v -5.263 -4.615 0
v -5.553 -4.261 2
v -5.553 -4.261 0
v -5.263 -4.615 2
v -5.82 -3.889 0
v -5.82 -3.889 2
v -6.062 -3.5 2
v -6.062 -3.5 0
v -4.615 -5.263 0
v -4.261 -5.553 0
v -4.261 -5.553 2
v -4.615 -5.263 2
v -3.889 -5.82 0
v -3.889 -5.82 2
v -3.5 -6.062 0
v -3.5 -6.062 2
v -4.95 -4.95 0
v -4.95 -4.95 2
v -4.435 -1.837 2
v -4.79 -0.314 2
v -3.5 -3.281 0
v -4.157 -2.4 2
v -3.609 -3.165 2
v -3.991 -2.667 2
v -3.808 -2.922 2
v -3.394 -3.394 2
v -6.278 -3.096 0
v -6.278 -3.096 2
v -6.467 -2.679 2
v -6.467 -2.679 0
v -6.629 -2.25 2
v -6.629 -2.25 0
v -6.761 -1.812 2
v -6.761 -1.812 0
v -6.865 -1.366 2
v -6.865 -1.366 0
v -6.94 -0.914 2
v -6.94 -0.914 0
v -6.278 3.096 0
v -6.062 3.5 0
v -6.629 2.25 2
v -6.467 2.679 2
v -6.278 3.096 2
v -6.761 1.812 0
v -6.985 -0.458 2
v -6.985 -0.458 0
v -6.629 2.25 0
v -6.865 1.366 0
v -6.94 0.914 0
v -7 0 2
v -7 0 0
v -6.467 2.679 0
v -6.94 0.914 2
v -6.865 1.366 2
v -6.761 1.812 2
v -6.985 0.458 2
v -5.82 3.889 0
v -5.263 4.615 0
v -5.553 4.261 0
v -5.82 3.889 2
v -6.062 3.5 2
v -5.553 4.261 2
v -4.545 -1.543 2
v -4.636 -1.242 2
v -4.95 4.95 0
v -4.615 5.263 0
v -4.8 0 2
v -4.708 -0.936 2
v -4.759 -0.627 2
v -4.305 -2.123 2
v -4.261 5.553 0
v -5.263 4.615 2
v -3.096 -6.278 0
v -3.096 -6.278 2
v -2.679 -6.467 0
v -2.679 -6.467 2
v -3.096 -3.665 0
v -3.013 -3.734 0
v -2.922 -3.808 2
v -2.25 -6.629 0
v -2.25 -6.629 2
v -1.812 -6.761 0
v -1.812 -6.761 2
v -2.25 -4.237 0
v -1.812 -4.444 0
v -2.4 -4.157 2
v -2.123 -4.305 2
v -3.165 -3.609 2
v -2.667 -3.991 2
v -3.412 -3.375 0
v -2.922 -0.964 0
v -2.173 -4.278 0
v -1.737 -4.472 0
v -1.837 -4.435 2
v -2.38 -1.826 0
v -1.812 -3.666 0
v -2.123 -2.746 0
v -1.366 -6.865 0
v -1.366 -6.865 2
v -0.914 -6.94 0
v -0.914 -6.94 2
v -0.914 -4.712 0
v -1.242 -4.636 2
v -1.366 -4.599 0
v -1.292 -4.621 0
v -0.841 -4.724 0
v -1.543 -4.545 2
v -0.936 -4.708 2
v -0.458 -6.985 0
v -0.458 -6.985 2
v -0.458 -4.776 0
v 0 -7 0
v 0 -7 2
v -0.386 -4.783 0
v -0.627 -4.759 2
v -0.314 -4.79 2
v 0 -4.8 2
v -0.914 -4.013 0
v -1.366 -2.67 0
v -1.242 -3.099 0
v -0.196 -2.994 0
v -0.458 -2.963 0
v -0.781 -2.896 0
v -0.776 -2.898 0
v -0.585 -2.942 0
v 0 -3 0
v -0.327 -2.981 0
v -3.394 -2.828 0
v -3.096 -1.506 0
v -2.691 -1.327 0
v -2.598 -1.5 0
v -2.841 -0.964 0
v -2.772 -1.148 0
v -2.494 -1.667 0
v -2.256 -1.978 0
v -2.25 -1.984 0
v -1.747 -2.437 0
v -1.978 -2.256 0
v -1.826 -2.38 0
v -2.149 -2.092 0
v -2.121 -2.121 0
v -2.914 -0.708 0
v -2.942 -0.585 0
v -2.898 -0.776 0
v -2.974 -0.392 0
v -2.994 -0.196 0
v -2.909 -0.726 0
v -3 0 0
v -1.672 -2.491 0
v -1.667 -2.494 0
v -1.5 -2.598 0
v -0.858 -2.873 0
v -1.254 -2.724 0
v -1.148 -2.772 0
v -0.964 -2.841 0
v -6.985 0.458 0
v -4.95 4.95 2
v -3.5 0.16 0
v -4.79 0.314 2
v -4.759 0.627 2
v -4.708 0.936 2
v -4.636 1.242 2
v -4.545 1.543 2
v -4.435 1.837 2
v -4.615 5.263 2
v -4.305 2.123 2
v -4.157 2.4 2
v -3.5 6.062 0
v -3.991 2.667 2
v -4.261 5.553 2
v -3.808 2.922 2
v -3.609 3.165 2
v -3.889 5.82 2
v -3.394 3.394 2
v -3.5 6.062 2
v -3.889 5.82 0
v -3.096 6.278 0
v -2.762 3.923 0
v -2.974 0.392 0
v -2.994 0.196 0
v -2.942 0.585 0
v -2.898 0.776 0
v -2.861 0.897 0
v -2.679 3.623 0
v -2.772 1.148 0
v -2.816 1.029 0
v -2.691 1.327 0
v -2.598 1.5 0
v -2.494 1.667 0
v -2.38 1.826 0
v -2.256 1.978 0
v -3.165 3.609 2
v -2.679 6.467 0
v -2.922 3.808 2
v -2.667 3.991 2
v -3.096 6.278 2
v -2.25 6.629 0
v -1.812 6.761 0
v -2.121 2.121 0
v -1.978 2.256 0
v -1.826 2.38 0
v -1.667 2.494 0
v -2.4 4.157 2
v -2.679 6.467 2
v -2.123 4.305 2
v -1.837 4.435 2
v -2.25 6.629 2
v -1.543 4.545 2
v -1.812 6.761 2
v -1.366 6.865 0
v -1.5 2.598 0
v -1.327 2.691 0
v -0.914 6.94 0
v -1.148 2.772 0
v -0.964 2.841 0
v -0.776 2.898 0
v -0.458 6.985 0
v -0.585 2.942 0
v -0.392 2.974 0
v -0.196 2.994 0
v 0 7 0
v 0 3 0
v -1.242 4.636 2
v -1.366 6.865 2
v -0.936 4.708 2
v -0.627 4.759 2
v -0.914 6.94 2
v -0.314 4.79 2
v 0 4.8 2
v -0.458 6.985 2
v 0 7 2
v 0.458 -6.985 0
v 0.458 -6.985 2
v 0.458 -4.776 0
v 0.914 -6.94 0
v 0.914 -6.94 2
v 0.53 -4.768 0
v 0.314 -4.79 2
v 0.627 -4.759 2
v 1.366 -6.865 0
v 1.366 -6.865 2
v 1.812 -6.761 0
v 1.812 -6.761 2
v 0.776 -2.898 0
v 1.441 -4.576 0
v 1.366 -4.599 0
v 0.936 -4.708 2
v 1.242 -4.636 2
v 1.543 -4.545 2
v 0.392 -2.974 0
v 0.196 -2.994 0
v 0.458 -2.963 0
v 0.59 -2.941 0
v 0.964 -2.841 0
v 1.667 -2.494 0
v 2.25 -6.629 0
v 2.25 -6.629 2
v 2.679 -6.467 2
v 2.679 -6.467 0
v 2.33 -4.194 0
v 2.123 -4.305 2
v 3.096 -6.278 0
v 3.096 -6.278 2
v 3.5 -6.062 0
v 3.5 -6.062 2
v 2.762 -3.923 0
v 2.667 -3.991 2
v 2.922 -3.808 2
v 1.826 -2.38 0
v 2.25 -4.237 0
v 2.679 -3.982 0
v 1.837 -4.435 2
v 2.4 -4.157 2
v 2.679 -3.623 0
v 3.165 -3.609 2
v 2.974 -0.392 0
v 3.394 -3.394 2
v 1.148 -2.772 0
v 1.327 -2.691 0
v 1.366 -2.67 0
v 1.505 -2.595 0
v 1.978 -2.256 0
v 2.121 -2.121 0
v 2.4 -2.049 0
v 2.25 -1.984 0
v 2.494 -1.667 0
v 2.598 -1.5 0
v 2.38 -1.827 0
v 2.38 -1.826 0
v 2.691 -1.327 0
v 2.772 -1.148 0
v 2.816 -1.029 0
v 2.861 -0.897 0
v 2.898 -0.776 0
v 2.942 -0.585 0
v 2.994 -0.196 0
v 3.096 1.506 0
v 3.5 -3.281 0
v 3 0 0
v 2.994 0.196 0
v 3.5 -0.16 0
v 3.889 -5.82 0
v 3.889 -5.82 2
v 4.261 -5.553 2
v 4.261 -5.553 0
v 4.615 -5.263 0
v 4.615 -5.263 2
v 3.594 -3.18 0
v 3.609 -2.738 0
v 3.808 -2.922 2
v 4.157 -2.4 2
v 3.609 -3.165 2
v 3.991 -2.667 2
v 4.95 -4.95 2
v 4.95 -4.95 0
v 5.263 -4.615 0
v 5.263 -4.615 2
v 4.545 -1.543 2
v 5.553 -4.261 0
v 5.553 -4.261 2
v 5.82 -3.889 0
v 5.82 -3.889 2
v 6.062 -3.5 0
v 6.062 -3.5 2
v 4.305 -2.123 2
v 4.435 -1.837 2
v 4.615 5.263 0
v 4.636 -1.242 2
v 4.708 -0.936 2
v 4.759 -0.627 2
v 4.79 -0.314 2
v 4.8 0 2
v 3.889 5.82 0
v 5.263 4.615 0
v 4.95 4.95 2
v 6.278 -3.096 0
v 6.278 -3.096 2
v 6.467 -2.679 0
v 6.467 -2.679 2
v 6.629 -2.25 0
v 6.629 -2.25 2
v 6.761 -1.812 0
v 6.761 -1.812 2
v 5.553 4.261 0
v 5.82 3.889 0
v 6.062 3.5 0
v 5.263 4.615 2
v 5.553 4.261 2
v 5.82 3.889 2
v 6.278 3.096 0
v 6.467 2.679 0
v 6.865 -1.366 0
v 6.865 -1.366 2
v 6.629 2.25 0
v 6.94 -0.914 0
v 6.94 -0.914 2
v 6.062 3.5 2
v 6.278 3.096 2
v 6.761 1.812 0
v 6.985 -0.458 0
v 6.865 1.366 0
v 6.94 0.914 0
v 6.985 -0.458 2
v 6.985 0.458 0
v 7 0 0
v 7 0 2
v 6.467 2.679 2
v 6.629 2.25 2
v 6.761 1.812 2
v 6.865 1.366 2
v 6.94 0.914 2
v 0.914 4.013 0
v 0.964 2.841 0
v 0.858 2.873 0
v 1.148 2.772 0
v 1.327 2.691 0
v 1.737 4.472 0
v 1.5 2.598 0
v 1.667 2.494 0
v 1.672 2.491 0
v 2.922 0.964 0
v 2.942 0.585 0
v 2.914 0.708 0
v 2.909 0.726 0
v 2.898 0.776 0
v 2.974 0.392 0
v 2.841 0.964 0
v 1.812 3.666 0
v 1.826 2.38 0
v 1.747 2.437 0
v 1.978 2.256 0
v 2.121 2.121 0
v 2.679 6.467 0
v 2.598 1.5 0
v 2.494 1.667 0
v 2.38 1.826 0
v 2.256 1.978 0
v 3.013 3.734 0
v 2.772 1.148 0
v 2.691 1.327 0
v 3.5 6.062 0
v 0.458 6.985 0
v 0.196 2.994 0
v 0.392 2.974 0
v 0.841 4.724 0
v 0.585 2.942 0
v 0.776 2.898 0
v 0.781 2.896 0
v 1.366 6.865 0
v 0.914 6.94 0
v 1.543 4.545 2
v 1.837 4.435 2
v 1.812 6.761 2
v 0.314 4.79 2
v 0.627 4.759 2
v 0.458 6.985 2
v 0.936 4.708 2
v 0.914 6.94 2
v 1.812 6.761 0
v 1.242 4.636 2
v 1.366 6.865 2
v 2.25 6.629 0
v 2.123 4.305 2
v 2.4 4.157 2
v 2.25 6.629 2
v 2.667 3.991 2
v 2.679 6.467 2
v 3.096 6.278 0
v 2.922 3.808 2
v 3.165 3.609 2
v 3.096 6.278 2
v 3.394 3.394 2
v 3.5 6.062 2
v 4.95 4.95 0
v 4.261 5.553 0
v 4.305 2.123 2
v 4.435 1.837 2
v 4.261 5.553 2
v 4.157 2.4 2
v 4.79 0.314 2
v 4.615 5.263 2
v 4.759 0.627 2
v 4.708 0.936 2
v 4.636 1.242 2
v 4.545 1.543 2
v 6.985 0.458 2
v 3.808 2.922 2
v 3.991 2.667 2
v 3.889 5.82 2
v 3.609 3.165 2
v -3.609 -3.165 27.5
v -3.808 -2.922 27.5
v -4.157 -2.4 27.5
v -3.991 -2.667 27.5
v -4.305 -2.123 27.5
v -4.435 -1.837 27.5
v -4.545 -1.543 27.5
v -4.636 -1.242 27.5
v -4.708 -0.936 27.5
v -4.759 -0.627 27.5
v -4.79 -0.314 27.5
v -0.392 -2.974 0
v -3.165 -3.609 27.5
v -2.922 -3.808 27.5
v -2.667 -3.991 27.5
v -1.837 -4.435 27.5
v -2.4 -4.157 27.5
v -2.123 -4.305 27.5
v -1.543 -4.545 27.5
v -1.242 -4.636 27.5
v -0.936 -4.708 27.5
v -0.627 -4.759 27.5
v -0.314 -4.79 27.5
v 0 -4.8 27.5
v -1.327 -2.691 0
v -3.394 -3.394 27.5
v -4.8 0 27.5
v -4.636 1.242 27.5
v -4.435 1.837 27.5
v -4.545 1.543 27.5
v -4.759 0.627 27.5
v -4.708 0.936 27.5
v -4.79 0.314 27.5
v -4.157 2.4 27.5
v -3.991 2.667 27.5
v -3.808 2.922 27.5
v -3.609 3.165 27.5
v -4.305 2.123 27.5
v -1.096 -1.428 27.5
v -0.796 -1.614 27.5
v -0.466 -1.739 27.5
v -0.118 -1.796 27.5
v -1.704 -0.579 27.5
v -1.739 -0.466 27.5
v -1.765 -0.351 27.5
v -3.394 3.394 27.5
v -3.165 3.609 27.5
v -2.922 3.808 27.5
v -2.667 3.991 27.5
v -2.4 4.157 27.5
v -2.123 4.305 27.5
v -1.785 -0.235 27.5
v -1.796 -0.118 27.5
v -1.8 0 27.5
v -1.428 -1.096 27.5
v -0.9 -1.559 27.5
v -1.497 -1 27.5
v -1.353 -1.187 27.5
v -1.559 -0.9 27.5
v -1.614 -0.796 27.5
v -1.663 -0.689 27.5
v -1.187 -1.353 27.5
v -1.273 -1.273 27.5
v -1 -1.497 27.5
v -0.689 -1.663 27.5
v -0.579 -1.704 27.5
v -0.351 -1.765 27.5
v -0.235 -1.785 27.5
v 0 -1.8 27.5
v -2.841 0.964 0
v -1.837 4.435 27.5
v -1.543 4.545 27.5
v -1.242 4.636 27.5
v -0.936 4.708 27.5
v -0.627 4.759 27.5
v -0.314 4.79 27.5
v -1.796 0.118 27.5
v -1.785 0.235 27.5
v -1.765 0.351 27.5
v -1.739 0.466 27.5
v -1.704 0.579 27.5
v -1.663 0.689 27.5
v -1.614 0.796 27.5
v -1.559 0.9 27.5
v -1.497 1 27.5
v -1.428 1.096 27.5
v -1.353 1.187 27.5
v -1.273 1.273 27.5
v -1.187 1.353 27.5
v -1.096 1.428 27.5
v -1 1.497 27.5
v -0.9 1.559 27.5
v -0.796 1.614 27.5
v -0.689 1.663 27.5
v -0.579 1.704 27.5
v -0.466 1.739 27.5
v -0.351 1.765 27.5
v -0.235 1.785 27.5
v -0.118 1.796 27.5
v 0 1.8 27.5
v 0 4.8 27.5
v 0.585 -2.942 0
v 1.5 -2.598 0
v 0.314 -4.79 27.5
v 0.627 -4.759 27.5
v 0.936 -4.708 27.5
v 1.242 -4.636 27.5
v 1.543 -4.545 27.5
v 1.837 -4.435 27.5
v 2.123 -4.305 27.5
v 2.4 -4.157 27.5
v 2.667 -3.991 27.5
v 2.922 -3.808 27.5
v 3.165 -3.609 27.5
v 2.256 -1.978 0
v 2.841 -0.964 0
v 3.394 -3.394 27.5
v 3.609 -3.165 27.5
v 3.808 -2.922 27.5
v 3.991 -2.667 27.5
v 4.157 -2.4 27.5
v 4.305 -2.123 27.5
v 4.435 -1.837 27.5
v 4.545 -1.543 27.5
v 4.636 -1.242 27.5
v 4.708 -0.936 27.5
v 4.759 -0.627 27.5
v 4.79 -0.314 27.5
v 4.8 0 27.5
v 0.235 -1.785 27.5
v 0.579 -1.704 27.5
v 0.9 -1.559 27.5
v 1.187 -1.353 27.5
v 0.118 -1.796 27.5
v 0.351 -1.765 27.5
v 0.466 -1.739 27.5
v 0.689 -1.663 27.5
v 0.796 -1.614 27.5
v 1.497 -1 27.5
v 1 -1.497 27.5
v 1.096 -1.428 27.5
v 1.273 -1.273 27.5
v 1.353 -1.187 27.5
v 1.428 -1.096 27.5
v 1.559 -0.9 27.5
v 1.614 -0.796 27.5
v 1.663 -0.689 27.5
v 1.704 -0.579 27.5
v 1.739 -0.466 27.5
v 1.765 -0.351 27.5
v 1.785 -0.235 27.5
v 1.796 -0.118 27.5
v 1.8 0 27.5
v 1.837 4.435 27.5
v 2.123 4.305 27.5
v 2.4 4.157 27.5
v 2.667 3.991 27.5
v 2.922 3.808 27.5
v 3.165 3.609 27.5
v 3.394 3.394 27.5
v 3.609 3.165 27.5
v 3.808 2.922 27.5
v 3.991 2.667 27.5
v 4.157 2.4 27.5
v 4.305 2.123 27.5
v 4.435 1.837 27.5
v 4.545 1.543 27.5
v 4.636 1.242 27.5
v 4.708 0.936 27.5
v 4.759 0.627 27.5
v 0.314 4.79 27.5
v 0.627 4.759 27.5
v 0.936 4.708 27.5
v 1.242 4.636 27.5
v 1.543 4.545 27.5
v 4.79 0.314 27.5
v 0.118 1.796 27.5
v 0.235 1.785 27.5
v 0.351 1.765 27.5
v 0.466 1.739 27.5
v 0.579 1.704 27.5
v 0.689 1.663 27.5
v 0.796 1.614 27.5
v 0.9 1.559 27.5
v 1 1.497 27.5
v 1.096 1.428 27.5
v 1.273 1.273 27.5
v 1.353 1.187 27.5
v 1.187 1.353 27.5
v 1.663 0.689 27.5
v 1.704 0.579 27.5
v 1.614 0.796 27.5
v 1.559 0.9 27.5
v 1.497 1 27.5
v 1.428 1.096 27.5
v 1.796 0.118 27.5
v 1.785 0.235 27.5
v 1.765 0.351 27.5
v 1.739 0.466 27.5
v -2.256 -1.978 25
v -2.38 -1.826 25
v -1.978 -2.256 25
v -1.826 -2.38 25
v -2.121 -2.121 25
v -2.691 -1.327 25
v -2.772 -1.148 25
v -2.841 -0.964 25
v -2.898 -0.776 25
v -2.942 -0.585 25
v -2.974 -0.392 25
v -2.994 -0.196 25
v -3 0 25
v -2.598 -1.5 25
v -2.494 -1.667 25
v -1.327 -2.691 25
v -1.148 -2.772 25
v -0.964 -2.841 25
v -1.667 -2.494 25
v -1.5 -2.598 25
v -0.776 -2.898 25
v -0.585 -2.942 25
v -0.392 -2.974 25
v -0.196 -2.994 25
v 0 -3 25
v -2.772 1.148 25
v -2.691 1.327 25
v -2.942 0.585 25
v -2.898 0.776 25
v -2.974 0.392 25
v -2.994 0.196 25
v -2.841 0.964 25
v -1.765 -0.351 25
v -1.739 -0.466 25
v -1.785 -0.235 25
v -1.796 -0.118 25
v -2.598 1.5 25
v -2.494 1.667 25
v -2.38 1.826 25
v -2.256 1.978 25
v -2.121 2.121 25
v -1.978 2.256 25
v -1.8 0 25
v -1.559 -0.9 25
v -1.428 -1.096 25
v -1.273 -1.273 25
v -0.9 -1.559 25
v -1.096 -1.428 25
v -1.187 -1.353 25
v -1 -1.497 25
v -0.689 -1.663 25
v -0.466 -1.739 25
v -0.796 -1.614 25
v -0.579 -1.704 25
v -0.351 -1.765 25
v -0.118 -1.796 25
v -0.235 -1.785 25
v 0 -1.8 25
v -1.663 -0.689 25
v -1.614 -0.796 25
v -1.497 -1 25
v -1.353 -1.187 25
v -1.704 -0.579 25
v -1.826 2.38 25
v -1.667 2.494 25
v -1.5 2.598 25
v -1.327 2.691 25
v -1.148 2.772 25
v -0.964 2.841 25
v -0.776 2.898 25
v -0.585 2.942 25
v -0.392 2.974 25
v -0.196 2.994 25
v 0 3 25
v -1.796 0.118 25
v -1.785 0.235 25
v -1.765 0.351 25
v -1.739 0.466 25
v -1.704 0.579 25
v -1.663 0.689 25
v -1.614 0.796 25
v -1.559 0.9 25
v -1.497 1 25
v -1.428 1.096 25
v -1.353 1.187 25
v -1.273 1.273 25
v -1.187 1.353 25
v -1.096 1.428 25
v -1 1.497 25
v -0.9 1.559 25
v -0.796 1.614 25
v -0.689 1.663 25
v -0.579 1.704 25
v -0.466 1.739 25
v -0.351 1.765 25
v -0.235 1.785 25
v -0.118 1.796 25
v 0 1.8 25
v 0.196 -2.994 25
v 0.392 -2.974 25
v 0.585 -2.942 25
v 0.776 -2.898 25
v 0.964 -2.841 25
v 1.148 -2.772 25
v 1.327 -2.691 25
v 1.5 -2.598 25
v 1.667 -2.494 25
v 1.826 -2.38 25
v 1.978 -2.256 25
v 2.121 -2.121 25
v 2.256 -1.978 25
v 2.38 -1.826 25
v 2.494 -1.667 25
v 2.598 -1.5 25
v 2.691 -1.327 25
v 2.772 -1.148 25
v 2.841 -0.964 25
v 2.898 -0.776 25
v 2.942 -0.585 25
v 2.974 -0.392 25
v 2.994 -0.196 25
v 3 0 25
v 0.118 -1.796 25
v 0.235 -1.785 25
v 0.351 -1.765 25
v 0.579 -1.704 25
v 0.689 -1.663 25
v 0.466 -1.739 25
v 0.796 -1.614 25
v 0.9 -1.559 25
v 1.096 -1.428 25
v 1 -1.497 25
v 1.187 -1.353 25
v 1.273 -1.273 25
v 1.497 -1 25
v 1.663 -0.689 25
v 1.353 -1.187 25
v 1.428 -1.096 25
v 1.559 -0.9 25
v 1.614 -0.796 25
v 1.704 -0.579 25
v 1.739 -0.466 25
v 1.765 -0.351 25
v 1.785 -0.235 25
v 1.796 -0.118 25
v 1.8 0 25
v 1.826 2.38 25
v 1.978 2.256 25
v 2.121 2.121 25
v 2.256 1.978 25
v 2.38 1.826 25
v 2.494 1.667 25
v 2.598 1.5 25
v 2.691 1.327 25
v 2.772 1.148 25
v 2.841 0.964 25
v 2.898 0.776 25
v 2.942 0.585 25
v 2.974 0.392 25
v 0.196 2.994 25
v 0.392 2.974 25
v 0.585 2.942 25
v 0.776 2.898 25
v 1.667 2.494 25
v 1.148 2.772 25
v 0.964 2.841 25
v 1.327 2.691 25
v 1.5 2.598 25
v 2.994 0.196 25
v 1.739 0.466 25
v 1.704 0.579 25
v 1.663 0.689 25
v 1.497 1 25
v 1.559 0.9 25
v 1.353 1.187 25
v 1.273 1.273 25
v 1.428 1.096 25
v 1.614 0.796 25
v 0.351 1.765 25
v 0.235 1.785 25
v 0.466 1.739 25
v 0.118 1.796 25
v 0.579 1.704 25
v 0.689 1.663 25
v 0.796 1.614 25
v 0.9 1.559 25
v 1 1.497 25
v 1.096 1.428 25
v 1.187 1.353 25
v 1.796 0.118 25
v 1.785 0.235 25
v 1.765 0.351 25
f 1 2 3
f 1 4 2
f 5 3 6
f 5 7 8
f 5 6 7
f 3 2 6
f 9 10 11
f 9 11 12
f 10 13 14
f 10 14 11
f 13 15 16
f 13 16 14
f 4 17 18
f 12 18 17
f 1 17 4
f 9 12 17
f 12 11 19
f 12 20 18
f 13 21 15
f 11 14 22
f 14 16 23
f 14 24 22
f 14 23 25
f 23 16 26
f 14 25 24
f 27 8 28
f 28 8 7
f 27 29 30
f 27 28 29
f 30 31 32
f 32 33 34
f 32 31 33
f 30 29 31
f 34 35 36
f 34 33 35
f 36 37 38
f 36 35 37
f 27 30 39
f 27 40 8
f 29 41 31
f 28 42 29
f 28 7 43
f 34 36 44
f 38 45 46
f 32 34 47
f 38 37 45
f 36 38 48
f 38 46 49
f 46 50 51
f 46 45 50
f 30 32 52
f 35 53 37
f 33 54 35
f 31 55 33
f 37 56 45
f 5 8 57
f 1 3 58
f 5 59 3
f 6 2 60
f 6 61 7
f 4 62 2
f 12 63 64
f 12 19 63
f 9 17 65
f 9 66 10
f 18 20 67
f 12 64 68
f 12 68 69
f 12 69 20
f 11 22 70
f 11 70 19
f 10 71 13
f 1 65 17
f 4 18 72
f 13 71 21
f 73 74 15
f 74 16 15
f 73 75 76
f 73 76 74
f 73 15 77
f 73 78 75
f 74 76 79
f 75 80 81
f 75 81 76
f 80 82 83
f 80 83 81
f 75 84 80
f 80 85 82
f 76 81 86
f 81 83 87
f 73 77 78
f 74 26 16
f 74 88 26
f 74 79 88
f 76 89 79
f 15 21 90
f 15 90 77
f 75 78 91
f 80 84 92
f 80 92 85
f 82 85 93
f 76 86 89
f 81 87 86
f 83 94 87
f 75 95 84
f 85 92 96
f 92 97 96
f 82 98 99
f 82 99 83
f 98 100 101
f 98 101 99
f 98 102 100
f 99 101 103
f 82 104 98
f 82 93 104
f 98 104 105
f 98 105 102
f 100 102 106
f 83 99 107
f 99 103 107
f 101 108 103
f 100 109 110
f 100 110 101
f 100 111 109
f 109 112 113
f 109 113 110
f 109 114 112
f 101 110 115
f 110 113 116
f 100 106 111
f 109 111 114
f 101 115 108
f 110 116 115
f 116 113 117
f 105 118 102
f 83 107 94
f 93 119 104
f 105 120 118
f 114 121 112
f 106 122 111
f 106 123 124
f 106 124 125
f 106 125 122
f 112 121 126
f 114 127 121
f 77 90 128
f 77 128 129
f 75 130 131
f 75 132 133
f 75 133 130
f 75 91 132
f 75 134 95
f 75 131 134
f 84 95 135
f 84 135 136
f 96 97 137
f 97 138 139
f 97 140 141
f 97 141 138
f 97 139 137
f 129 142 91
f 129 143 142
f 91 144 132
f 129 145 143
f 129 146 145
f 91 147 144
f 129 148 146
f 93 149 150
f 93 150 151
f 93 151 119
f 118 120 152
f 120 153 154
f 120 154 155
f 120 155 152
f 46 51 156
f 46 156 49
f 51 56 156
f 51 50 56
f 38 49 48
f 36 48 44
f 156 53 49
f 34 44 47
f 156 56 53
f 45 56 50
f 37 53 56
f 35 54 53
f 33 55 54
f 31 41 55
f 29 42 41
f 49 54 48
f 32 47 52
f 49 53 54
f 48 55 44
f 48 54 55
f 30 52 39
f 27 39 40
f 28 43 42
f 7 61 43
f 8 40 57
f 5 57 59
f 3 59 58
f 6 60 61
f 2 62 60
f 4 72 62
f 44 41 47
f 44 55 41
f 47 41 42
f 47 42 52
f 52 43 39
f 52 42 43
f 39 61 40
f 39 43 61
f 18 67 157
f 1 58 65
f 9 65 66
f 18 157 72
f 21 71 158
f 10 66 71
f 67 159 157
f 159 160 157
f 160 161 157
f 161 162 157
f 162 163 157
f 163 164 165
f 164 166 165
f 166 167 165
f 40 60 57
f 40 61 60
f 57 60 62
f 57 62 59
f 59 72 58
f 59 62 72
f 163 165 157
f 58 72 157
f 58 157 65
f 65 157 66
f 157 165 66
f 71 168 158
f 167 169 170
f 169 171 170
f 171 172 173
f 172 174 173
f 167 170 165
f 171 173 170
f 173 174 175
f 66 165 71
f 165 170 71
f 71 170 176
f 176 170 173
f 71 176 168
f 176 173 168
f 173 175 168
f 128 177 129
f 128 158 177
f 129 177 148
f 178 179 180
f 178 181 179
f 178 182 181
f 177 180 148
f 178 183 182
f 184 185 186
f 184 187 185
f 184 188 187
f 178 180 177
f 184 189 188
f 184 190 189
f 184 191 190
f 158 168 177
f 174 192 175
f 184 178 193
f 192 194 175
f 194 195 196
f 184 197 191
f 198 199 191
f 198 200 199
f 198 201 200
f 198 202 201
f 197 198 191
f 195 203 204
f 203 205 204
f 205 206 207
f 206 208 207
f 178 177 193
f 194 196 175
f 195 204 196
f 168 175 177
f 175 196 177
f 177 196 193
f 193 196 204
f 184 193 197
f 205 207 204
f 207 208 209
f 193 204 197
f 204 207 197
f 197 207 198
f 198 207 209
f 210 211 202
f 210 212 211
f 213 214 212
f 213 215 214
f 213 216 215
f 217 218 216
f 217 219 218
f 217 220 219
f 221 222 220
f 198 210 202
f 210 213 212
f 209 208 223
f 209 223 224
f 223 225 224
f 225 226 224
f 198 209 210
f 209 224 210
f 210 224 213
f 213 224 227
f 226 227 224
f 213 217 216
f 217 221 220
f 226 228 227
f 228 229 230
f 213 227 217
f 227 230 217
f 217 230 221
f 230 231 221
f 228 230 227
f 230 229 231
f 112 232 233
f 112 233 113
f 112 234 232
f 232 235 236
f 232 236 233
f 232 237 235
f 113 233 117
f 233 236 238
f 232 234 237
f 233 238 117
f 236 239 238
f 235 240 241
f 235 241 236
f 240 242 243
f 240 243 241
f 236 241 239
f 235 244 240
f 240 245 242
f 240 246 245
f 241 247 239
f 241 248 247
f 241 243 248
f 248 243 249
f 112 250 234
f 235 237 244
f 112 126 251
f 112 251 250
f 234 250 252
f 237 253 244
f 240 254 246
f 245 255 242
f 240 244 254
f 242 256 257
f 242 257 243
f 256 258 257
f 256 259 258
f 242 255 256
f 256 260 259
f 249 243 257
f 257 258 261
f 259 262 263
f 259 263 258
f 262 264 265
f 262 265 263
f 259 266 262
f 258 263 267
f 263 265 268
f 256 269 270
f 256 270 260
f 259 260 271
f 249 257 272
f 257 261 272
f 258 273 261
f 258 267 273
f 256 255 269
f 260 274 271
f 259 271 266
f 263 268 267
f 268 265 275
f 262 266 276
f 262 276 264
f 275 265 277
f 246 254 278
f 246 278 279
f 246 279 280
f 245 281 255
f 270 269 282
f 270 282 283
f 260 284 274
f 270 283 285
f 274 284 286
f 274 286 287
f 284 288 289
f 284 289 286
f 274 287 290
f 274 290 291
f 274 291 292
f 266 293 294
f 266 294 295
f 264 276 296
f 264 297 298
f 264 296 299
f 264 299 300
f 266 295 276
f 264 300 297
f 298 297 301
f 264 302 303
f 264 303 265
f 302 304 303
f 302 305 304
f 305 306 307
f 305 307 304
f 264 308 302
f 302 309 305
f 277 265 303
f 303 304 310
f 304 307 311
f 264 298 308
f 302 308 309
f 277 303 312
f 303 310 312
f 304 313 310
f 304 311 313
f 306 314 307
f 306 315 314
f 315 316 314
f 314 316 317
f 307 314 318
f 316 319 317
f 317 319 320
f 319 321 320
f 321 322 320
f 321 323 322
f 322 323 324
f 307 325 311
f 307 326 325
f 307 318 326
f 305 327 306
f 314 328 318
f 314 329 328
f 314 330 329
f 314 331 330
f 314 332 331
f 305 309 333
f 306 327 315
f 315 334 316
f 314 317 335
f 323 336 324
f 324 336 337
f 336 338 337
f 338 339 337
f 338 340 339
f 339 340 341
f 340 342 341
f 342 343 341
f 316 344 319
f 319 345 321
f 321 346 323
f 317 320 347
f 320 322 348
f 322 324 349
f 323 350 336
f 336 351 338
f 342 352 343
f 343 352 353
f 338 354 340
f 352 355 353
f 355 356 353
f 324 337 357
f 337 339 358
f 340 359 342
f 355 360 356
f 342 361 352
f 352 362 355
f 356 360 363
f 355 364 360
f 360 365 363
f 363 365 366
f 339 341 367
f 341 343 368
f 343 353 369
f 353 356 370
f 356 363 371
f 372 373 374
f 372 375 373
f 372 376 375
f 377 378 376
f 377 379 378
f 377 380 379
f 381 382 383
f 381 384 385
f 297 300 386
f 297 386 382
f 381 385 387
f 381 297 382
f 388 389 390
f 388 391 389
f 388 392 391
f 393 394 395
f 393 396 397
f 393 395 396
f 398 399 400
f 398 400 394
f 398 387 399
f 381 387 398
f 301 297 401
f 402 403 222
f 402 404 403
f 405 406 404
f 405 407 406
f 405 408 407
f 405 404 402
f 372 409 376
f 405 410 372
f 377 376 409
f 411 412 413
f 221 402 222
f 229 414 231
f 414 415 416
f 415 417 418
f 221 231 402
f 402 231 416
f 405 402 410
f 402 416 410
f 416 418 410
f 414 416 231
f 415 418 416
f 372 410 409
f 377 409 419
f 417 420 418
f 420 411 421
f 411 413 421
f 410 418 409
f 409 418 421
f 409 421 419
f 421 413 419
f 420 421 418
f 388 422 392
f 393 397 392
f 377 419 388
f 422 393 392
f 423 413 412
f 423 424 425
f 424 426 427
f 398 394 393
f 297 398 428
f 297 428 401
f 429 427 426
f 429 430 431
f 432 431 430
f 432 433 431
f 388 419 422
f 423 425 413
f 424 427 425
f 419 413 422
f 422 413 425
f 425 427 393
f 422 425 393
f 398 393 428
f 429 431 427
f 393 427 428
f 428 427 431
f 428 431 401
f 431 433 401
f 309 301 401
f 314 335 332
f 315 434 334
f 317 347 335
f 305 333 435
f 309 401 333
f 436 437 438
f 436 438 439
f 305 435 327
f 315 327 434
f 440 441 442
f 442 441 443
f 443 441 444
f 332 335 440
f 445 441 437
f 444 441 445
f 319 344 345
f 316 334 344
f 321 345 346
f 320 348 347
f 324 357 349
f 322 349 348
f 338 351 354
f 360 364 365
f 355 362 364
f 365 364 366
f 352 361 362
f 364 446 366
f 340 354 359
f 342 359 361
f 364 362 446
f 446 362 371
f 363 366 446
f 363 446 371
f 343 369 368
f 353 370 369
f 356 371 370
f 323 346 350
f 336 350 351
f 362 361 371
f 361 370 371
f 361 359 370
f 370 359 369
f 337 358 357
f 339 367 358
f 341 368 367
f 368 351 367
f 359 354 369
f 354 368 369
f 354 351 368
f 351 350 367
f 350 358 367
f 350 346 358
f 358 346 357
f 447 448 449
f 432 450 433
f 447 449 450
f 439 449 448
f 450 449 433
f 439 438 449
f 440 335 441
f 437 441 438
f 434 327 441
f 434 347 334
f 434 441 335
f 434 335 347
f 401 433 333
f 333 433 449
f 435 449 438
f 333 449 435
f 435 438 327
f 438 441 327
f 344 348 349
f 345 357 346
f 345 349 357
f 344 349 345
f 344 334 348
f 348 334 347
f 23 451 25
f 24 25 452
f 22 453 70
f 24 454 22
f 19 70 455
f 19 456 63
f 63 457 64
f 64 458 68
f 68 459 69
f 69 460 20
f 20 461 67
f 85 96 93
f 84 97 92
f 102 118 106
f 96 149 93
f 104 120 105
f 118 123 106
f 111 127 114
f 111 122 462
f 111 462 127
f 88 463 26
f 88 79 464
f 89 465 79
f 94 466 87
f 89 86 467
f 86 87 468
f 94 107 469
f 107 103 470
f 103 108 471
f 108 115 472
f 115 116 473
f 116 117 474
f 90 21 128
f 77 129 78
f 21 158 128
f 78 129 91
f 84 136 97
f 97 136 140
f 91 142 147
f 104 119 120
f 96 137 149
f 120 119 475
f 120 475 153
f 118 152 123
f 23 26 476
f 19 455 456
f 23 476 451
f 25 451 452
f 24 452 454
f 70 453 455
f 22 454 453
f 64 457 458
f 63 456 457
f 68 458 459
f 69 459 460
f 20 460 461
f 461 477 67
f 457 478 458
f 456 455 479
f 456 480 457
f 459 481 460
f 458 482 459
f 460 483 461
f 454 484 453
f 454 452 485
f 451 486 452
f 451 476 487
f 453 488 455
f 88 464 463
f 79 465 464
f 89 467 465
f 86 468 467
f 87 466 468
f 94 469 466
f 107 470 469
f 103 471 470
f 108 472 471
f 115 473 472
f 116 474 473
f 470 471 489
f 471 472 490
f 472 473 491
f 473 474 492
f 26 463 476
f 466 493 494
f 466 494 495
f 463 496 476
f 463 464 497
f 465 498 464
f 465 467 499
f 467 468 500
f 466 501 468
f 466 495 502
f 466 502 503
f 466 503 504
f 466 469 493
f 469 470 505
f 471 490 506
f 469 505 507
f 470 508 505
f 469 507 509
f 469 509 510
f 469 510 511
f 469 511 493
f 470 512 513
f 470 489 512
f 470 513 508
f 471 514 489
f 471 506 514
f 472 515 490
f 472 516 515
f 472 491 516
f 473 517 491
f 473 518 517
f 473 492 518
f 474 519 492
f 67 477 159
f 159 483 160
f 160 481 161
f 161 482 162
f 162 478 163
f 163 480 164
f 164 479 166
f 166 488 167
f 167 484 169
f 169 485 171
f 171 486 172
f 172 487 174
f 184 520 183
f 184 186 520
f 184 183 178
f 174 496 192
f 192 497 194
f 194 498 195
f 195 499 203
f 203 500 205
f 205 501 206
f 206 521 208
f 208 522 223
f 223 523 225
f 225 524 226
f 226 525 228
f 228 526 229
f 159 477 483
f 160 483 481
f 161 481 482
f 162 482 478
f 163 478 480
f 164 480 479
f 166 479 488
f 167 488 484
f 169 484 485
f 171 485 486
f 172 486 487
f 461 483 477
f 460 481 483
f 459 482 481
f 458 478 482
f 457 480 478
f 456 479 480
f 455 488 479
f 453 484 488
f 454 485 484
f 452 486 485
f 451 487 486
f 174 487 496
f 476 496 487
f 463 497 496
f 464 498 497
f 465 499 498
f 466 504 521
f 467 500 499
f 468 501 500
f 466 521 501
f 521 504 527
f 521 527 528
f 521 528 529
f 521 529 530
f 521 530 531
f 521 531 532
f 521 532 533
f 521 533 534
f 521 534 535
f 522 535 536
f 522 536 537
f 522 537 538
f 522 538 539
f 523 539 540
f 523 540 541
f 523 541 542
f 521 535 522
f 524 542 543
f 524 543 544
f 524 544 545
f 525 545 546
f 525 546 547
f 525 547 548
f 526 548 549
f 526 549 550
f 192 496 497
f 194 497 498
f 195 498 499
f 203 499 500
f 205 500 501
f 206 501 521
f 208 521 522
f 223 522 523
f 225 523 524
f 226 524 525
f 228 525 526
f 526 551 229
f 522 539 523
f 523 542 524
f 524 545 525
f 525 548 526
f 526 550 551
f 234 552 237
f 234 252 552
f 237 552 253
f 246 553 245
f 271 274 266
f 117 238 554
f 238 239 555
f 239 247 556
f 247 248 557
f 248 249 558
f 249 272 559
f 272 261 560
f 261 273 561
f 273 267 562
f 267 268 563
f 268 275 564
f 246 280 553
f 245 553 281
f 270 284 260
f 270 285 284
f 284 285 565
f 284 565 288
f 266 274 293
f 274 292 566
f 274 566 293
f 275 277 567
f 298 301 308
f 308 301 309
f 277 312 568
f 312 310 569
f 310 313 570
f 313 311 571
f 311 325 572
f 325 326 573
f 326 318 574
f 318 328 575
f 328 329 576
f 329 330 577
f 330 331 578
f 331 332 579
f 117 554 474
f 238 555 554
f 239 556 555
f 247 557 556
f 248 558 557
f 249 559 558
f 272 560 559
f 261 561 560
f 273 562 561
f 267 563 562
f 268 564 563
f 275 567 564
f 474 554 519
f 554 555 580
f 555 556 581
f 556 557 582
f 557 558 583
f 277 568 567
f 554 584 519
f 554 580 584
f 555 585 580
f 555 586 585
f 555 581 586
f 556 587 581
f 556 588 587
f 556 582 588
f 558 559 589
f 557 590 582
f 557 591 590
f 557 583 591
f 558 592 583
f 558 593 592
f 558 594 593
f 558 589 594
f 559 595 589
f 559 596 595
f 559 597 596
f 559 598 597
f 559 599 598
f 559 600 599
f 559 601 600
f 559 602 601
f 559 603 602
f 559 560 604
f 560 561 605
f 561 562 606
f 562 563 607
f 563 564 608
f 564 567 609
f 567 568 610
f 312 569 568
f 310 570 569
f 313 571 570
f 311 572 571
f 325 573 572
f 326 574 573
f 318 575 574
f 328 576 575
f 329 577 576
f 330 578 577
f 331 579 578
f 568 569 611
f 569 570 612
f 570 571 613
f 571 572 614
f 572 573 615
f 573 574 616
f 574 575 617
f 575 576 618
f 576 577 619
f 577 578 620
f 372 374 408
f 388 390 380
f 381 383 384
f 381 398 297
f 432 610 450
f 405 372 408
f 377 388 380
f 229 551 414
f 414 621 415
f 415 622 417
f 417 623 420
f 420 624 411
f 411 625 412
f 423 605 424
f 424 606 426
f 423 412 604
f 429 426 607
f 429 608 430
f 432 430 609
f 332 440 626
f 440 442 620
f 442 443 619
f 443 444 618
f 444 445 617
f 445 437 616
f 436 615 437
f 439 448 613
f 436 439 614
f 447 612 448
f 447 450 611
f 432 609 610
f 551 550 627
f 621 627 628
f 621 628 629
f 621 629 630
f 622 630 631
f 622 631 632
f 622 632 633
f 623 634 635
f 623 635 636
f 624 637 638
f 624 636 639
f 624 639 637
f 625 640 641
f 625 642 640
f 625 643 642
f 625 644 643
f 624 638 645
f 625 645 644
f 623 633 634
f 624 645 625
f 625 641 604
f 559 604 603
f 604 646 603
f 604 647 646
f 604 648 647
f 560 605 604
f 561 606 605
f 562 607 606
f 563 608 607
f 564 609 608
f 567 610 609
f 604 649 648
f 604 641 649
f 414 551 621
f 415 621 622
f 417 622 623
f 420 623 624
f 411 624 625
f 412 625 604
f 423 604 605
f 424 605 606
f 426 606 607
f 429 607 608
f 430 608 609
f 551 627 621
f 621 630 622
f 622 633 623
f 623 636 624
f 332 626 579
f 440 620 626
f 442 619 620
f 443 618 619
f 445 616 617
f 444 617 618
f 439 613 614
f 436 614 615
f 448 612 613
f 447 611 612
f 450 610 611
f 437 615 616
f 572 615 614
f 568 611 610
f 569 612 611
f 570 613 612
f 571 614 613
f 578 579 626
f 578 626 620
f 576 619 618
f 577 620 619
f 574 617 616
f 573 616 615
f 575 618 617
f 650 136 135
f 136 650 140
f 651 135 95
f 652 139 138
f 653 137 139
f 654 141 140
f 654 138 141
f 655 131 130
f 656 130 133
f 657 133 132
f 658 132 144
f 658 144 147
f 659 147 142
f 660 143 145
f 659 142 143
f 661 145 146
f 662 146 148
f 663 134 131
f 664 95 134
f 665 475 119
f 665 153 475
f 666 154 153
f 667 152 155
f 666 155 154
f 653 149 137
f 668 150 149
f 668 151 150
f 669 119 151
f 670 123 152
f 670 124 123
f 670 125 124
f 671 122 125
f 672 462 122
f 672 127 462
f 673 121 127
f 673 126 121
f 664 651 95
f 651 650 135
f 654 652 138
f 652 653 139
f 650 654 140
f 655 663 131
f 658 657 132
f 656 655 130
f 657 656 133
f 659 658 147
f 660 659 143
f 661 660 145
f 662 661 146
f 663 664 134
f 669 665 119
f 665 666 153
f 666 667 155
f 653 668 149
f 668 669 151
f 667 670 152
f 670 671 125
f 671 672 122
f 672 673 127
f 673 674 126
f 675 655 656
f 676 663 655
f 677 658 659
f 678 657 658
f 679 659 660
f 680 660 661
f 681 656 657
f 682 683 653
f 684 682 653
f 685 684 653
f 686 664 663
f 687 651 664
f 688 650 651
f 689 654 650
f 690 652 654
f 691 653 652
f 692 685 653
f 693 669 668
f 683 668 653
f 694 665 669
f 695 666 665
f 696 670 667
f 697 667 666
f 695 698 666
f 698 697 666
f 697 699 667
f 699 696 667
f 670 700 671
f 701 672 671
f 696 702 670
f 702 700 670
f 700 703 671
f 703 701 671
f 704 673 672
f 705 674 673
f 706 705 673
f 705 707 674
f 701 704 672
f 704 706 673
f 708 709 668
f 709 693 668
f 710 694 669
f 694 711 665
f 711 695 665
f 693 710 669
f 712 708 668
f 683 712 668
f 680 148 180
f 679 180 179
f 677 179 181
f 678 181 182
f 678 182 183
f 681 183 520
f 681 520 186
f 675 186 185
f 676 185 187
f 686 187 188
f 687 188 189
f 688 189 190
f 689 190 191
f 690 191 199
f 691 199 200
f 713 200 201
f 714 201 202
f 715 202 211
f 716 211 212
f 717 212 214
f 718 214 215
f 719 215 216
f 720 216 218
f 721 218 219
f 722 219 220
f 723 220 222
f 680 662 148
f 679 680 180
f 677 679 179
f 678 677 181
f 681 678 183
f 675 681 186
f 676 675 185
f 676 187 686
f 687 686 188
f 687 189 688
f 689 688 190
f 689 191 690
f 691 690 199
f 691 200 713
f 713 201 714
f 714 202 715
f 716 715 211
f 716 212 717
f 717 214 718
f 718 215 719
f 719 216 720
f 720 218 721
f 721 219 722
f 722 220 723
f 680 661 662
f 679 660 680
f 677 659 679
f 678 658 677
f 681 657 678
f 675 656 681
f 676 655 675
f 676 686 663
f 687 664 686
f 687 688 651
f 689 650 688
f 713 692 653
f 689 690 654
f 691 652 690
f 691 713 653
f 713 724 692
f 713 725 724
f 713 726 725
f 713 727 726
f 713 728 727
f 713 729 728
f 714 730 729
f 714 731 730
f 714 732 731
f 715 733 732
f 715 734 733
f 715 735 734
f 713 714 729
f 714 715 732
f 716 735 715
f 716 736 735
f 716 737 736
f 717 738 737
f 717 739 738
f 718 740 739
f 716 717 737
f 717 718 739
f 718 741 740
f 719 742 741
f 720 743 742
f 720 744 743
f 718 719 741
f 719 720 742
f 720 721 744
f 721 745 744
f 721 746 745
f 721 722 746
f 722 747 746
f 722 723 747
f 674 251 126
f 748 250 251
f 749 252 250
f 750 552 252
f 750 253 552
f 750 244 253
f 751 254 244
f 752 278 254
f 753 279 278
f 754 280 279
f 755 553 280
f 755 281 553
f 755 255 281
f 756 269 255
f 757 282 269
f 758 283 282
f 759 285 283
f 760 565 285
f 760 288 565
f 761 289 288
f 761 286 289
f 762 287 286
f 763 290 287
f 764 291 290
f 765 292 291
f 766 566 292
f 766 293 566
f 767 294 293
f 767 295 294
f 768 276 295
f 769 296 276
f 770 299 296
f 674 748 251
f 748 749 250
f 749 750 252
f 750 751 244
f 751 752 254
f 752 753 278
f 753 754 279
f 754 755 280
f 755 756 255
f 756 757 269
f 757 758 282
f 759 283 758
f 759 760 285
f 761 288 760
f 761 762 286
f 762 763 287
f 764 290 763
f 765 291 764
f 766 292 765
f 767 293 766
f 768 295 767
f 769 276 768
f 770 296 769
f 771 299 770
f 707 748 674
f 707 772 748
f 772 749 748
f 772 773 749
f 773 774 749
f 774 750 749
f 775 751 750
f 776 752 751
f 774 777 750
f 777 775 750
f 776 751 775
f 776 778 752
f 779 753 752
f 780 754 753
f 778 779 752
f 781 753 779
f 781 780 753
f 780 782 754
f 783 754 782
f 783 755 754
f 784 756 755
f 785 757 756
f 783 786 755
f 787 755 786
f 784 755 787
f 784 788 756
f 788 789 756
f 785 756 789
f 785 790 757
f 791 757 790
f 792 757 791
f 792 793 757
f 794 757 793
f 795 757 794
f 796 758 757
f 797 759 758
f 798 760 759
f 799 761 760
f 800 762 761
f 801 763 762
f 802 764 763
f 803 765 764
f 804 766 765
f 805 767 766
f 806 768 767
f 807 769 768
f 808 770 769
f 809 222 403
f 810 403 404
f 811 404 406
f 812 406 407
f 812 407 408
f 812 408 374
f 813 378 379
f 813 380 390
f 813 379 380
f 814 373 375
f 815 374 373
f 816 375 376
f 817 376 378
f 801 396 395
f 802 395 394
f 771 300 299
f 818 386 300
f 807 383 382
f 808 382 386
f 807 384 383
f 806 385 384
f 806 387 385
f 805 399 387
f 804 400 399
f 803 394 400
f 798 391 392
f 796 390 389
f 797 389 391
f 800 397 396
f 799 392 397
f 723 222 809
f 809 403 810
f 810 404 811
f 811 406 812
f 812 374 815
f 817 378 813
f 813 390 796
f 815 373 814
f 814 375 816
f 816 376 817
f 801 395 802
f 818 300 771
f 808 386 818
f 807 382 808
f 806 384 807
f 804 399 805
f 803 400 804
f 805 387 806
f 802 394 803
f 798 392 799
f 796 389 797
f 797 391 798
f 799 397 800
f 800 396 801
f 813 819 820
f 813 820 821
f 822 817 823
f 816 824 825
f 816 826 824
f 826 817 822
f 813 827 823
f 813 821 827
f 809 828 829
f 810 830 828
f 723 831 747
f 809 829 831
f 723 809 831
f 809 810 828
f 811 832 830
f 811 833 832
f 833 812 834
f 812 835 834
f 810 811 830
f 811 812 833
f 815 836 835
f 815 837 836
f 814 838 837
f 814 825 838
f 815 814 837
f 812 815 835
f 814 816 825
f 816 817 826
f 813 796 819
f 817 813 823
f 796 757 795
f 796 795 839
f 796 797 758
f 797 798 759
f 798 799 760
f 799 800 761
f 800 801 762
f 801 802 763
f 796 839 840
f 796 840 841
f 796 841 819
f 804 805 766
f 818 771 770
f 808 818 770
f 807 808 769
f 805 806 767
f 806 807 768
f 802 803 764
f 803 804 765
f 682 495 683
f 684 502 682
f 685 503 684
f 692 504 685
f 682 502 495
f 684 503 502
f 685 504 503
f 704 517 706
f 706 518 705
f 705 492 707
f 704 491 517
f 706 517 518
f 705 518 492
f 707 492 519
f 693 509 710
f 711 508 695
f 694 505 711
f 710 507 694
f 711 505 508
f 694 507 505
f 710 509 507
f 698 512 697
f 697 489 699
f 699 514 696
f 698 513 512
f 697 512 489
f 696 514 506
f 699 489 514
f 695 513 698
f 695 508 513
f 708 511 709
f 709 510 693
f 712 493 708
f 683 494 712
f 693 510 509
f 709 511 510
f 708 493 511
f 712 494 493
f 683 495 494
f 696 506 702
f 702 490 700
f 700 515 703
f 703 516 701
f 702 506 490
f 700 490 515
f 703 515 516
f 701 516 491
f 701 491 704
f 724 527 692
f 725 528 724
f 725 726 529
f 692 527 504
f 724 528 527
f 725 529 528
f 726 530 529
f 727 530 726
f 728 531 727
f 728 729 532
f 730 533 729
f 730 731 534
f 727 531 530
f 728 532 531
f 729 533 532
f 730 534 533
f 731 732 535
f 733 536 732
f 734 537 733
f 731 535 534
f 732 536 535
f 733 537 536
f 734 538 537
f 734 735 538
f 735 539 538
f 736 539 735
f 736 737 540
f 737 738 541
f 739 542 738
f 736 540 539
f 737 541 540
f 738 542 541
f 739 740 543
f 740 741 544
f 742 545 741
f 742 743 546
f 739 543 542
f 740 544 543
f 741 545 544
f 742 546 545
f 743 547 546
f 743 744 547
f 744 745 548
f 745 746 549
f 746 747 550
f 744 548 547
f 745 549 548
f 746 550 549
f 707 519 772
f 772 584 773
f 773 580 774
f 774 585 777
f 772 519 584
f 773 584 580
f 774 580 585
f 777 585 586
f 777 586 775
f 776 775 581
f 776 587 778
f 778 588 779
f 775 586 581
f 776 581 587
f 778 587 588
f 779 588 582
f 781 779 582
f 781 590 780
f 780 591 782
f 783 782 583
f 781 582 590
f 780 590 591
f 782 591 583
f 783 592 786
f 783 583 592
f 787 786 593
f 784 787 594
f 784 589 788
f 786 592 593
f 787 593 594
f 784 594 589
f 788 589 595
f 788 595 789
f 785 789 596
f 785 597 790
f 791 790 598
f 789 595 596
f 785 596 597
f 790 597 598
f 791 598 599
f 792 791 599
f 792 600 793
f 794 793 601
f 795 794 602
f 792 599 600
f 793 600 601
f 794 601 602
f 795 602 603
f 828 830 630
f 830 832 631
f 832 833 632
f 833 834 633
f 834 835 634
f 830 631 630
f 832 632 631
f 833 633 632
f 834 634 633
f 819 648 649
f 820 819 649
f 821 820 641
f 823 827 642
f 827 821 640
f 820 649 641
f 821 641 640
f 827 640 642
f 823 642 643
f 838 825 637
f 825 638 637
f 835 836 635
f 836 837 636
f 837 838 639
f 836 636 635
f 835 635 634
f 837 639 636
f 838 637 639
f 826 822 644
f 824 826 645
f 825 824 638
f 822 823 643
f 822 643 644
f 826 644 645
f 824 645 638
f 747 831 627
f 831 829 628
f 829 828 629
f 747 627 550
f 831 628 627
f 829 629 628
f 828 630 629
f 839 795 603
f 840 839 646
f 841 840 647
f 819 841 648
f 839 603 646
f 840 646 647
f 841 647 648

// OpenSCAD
$fn=96;
difference() {
	union() {
		cylinder(h = 2.0, r = 7.0);
		cylinder(h = 27.5, r = 4.8);
	}
	union() {
		translate(v = [0, 0, 67.0]) {
			rotate(a = [180, 0, 0]) {
				difference() {
					union() {
						translate(v = [0, 0, 42.0]) {
							rotate(a = [0, 0, 0]) {
								difference() {
									union() {
										translate(v = [0, 0, -35.0]) {
											cylinder(h = 35.0, r = 1.5);
										}
										cylinder(h = 253.2, r = 3.0);
										translate(v = [0, 0, -35.0]) {
											cylinder(h = 35.0, r = 1.8);
										}
										translate(v = [0, 0, -35.0]) {
											cylinder(h = 35.0, r = 1.5);
										}
									}
									union();
								}
							}
						}
					}
					union();
				}
			}
		}
	}
}
